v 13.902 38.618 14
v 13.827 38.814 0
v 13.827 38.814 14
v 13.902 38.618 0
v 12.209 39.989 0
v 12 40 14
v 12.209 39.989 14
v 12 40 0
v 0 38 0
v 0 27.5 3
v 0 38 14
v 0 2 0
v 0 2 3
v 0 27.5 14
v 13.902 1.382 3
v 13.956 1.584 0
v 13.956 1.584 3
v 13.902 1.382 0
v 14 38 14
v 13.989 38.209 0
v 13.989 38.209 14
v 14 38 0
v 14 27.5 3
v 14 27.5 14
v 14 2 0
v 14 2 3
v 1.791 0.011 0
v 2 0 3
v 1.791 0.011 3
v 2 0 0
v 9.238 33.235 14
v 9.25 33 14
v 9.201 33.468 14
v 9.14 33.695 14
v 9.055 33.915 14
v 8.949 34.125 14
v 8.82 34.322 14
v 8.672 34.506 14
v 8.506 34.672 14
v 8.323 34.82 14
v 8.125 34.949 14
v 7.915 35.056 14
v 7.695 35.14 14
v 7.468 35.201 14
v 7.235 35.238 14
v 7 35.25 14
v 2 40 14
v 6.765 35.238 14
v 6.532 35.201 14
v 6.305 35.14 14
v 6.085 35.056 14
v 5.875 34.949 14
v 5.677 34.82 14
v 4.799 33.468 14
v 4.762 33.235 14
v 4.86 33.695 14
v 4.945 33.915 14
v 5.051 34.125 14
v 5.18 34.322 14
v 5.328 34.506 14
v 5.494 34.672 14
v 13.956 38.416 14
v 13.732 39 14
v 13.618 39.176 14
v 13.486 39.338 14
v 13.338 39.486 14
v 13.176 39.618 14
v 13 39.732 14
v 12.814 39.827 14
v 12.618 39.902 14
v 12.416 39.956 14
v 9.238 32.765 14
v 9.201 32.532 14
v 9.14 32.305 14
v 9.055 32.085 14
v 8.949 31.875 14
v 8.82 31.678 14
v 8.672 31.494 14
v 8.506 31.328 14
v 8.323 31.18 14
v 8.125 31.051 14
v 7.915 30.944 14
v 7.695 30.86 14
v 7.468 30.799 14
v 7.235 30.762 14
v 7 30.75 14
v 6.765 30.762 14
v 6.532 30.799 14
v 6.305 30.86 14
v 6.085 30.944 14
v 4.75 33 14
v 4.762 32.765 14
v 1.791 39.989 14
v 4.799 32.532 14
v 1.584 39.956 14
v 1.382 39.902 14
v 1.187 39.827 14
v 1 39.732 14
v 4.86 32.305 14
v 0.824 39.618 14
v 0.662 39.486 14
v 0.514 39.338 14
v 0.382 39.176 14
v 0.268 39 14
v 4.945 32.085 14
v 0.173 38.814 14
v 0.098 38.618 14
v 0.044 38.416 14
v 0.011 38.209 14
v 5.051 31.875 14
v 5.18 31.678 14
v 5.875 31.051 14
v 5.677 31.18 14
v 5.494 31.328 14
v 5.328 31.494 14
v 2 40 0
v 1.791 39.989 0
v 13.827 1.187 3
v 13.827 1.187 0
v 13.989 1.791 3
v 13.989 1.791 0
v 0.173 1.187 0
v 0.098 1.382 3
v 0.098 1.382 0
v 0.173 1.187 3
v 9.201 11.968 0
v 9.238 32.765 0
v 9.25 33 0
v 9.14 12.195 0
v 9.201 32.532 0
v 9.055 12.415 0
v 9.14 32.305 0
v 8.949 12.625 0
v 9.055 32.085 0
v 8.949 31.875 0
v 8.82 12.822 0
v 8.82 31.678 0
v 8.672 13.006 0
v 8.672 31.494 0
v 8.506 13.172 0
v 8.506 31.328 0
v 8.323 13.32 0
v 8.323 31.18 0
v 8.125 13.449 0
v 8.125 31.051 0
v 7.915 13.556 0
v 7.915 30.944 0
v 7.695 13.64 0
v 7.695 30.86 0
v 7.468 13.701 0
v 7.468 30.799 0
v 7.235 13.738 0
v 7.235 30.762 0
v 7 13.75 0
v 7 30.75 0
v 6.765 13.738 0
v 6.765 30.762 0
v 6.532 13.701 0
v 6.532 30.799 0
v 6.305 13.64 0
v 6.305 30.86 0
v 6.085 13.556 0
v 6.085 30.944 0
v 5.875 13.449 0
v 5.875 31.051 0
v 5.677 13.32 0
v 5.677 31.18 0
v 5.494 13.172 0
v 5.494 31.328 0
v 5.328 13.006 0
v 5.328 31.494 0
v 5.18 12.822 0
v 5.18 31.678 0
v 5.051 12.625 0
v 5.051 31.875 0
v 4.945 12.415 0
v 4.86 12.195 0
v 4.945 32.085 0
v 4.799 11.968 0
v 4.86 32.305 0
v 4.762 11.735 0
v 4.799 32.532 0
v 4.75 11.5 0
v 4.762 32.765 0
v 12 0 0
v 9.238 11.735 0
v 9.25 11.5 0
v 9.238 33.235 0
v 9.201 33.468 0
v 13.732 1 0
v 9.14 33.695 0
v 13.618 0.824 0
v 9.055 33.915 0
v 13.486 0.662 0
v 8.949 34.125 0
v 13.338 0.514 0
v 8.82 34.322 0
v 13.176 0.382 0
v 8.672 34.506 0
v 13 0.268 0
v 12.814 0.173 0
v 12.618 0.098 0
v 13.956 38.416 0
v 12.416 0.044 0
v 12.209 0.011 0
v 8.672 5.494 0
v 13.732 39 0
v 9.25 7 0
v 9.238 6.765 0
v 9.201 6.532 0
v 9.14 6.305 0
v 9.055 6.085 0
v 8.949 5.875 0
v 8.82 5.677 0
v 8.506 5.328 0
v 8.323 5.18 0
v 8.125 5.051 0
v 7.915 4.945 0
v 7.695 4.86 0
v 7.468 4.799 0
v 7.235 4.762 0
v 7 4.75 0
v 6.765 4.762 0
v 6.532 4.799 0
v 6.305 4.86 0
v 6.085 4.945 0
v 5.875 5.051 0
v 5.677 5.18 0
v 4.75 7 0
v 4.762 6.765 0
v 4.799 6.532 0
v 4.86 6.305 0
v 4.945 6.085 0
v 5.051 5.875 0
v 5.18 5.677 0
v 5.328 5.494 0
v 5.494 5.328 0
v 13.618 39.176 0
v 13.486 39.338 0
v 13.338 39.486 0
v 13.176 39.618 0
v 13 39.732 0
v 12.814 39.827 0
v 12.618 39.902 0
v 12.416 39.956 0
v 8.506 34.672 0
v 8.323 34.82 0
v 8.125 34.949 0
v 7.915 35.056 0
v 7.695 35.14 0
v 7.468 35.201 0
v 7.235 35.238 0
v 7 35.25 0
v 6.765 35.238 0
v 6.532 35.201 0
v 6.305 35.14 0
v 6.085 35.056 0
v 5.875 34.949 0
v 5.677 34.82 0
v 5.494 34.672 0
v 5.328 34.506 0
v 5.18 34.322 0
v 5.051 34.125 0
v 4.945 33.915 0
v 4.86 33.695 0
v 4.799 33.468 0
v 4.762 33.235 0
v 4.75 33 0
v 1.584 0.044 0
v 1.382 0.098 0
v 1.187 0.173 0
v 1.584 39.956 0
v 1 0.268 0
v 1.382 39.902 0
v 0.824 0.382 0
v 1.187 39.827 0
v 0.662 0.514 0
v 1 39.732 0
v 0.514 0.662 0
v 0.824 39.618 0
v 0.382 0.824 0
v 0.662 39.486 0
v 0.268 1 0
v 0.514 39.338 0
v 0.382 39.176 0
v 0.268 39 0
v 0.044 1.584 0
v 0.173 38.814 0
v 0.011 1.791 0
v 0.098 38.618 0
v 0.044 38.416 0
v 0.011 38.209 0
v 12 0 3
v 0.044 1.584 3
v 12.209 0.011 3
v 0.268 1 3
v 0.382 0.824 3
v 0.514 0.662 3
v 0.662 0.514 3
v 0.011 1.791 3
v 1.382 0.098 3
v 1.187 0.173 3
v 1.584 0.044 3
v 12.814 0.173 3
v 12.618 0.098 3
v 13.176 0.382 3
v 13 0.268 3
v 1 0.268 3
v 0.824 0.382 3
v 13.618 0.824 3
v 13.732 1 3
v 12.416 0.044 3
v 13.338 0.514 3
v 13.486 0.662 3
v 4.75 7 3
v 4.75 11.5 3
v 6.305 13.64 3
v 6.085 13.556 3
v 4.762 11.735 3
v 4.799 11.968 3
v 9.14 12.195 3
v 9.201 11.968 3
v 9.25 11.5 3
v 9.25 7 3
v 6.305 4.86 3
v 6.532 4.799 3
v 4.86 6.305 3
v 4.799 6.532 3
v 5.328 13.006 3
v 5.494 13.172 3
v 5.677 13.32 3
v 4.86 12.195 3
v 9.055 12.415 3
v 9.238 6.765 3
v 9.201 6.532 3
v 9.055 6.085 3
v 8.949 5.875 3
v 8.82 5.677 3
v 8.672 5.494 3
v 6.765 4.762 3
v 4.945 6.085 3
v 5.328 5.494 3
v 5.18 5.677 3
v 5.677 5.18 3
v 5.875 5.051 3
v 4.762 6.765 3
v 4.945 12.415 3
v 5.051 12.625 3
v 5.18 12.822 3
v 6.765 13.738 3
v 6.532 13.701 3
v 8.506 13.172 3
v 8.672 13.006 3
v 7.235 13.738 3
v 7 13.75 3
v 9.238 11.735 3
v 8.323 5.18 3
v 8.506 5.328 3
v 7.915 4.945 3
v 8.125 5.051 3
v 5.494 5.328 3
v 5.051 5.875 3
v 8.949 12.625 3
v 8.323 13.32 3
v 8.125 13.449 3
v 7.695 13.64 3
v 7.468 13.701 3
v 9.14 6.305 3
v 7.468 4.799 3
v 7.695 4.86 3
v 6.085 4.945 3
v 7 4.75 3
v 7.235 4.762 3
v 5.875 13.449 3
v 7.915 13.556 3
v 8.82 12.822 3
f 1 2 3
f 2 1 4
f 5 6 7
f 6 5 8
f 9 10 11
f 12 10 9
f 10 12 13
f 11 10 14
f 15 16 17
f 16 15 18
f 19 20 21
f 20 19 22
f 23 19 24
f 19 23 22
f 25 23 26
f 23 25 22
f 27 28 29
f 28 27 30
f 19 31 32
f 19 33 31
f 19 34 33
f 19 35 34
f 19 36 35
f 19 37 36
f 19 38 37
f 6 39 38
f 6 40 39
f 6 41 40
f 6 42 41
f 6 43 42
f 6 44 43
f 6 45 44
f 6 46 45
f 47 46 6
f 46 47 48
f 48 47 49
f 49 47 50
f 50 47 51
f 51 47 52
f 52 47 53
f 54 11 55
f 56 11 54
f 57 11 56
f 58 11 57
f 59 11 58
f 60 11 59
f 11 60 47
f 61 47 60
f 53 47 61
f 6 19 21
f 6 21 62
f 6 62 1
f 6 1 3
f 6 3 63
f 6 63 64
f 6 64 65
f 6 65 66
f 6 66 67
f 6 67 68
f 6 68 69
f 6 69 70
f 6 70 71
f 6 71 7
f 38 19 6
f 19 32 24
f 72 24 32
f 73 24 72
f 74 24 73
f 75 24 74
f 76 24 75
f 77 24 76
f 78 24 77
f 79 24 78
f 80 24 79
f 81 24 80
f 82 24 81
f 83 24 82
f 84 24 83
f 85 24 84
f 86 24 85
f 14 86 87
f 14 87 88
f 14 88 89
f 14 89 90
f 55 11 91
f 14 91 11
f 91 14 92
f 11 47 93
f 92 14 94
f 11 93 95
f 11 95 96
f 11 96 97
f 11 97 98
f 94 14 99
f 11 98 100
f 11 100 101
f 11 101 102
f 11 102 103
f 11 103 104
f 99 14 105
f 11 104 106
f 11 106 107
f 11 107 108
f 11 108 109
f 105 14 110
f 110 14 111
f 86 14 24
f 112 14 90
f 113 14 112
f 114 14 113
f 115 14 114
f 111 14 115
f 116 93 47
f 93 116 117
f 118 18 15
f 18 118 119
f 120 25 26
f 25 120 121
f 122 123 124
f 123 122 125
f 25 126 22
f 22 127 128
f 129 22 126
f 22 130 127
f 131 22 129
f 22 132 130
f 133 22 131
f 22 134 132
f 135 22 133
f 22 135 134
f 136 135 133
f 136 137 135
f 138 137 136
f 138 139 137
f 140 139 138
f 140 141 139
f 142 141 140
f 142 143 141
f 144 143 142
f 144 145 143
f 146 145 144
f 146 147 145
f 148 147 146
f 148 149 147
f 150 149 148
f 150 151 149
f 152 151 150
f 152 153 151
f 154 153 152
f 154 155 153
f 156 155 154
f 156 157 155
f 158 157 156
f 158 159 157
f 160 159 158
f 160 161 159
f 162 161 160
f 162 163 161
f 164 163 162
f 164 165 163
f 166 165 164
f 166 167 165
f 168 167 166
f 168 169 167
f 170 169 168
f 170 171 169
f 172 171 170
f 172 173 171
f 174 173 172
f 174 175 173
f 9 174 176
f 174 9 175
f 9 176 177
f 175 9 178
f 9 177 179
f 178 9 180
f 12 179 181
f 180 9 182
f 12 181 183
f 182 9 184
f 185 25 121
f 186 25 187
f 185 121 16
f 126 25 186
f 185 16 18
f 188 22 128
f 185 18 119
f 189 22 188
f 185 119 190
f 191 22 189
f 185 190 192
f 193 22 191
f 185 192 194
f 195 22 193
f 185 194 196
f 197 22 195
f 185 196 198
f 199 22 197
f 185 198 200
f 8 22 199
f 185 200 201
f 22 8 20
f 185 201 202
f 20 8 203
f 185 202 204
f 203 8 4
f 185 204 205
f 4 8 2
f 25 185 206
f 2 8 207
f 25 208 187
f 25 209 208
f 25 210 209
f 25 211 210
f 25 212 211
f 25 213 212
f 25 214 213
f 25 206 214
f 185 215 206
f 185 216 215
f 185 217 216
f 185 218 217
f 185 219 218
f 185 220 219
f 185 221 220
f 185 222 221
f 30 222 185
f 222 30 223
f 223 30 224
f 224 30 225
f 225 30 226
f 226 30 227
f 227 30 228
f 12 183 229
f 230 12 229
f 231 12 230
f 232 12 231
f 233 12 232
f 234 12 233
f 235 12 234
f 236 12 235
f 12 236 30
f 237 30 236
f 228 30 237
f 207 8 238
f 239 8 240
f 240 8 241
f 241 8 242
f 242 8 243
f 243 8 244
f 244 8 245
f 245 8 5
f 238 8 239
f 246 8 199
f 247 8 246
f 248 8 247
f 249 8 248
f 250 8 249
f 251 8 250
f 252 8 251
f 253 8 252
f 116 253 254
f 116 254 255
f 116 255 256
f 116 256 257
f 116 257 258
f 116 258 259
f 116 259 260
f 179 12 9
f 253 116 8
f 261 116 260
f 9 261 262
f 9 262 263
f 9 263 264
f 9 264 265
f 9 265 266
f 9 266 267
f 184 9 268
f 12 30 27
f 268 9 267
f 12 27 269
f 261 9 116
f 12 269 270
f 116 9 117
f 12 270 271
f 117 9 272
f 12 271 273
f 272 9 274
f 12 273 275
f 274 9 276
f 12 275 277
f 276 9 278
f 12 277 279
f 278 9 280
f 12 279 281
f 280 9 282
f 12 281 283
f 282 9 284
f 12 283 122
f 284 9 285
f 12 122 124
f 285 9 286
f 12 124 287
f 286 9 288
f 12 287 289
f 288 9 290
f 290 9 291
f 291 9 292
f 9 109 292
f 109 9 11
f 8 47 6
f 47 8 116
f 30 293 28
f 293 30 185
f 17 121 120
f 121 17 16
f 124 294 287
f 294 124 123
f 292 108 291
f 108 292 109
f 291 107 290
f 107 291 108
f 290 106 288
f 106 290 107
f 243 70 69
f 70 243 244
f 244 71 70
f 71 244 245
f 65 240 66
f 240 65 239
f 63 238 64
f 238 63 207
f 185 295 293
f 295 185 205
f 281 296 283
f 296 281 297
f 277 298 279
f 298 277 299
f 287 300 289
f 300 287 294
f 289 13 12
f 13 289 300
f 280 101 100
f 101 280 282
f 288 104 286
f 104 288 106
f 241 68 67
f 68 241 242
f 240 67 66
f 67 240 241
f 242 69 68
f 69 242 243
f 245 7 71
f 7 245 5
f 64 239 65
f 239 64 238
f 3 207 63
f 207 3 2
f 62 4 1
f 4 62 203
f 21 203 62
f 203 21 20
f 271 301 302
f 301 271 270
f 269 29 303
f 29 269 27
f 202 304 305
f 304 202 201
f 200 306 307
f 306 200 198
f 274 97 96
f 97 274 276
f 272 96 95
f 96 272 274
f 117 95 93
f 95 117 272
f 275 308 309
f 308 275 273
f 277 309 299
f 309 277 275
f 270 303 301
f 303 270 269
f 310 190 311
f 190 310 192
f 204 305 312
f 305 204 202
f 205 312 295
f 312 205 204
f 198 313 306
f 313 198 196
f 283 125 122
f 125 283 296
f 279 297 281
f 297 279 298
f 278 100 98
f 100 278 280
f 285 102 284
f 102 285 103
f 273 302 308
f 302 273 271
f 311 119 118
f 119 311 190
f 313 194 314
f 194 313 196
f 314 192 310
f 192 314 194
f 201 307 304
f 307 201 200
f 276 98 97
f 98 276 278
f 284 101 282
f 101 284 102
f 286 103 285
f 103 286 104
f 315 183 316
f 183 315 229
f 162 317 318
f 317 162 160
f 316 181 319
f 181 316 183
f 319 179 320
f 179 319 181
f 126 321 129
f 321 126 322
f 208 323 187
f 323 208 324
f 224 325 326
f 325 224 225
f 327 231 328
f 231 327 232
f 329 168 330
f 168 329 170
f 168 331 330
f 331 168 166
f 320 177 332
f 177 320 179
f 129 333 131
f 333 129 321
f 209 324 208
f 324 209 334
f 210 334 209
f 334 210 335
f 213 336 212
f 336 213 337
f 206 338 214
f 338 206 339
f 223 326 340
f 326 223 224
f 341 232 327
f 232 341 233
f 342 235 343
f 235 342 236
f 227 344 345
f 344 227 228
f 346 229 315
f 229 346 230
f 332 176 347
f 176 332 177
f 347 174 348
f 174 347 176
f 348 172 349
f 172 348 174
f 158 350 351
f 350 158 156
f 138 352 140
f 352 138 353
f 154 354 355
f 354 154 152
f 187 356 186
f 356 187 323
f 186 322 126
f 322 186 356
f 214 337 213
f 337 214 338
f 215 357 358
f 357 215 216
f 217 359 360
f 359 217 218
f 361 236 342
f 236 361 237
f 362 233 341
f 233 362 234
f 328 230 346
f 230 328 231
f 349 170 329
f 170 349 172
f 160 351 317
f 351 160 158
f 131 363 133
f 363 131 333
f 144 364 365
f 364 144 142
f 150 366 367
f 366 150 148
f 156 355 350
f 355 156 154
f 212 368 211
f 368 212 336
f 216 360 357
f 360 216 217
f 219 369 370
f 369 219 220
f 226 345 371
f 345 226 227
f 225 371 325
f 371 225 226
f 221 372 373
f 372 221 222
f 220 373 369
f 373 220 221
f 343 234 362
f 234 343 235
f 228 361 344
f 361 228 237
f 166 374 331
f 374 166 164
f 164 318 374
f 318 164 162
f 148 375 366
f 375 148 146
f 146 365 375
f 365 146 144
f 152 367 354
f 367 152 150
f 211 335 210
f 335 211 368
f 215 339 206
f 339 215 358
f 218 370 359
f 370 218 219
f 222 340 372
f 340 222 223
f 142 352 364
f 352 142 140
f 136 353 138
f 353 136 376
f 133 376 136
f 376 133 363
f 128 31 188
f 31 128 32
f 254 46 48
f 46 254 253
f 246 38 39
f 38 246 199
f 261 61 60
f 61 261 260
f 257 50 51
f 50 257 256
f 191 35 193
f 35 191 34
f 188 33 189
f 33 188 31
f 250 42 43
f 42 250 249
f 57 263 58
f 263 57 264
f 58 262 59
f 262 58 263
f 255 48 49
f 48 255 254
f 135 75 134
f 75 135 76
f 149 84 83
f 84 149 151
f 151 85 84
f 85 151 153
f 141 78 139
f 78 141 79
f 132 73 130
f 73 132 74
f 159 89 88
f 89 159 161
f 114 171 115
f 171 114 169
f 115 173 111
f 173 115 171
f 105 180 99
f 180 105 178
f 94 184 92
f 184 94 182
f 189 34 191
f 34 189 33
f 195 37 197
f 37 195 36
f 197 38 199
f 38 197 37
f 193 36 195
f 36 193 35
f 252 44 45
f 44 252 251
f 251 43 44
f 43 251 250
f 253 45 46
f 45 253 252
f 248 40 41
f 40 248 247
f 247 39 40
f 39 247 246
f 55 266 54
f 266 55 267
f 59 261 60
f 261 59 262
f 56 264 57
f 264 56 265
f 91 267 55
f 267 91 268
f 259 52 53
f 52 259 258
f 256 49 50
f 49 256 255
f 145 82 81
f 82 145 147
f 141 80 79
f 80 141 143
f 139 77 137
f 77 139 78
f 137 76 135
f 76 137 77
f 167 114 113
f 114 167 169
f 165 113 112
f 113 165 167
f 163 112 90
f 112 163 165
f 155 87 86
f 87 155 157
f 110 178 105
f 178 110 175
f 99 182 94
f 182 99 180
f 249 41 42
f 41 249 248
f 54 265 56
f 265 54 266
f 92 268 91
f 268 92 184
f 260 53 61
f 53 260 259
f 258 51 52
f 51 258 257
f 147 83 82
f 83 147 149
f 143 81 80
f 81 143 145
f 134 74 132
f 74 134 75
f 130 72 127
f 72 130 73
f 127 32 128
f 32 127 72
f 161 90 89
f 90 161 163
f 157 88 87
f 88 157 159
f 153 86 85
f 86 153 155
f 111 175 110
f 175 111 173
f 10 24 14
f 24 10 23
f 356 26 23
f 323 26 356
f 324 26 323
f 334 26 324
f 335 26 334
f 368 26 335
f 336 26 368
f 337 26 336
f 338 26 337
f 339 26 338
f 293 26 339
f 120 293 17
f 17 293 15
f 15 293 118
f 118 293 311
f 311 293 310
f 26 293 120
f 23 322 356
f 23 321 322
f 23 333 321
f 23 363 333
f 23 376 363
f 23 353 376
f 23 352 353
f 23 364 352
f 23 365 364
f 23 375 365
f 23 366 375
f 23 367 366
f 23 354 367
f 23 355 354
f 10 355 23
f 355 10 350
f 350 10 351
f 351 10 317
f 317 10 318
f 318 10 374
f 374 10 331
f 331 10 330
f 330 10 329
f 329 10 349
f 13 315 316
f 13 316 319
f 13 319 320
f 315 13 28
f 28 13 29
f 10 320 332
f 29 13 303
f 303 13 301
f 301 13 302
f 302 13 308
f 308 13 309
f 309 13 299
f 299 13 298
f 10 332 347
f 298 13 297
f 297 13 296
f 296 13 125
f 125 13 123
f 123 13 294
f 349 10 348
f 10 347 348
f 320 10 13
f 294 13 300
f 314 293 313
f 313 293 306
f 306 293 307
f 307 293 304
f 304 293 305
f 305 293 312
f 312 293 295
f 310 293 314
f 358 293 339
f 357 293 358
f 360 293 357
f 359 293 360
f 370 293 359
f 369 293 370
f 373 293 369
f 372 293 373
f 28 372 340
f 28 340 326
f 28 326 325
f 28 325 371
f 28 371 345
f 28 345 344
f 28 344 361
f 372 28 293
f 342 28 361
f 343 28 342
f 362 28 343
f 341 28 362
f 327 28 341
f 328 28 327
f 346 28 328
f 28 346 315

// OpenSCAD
/* Copyright (C) Peter Ivanov <ivanovp@gmail.com>, 2020 */
/* License: Creative Commons - Attribution - Non-commercial (CC BY-NC) /

/* [Global] */
width = 14; 
length = 40;
height = 14;
epsilon = 0.1;
r = 2;
drill_diameter = 4.5;
drill_distance = 26;
cutout_height = 11;
cutout_length = 27.5;

$fn = 60;

difference()
{
    rounded_cube(width, length, height, r);
    hull()
    {
        translate([width / 2, length / 2 - drill_distance / 2, -epsilon / 2])  cylinder(d=drill_diameter, h=height + epsilon);
        translate([width / 2, length / 2 - drill_distance / 2 + drill_diameter, -epsilon / 2]) cylinder(d=drill_diameter, h=height + epsilon);
    }
    translate([width / 2, length / 2 + drill_distance / 2, -epsilon / 2])
    {
        cylinder(d=drill_diameter, h=height + epsilon);
    }
    translate([-epsilon / 2, 0, height - cutout_height]) cube([width + epsilon, cutout_length, cutout_height + epsilon]);
}

module rounded_cube(w, l, h, r)
{
    hull()
    {
     translate([0 + r, 0 + r, 0]) cylinder(r=r, h=h);
     translate([w - r, 0 + r, 0]) cylinder(r=r, h=h);
     translate([w - r, l - r, 0]) cylinder(r=r, h=h);
     translate([0 + r, l - r, 0]) cylinder(r=r, h=h);
    }
}

module hexagon(width, height, baseAngle) 
{
  bwidth = width / 1.75;
  for (angle = [baseAngle, baseAngle + 60, baseAngle + 120]) 
  {
      rotate([0, 0, angle]) cube([bwidth, width, height], true);
  }
}
